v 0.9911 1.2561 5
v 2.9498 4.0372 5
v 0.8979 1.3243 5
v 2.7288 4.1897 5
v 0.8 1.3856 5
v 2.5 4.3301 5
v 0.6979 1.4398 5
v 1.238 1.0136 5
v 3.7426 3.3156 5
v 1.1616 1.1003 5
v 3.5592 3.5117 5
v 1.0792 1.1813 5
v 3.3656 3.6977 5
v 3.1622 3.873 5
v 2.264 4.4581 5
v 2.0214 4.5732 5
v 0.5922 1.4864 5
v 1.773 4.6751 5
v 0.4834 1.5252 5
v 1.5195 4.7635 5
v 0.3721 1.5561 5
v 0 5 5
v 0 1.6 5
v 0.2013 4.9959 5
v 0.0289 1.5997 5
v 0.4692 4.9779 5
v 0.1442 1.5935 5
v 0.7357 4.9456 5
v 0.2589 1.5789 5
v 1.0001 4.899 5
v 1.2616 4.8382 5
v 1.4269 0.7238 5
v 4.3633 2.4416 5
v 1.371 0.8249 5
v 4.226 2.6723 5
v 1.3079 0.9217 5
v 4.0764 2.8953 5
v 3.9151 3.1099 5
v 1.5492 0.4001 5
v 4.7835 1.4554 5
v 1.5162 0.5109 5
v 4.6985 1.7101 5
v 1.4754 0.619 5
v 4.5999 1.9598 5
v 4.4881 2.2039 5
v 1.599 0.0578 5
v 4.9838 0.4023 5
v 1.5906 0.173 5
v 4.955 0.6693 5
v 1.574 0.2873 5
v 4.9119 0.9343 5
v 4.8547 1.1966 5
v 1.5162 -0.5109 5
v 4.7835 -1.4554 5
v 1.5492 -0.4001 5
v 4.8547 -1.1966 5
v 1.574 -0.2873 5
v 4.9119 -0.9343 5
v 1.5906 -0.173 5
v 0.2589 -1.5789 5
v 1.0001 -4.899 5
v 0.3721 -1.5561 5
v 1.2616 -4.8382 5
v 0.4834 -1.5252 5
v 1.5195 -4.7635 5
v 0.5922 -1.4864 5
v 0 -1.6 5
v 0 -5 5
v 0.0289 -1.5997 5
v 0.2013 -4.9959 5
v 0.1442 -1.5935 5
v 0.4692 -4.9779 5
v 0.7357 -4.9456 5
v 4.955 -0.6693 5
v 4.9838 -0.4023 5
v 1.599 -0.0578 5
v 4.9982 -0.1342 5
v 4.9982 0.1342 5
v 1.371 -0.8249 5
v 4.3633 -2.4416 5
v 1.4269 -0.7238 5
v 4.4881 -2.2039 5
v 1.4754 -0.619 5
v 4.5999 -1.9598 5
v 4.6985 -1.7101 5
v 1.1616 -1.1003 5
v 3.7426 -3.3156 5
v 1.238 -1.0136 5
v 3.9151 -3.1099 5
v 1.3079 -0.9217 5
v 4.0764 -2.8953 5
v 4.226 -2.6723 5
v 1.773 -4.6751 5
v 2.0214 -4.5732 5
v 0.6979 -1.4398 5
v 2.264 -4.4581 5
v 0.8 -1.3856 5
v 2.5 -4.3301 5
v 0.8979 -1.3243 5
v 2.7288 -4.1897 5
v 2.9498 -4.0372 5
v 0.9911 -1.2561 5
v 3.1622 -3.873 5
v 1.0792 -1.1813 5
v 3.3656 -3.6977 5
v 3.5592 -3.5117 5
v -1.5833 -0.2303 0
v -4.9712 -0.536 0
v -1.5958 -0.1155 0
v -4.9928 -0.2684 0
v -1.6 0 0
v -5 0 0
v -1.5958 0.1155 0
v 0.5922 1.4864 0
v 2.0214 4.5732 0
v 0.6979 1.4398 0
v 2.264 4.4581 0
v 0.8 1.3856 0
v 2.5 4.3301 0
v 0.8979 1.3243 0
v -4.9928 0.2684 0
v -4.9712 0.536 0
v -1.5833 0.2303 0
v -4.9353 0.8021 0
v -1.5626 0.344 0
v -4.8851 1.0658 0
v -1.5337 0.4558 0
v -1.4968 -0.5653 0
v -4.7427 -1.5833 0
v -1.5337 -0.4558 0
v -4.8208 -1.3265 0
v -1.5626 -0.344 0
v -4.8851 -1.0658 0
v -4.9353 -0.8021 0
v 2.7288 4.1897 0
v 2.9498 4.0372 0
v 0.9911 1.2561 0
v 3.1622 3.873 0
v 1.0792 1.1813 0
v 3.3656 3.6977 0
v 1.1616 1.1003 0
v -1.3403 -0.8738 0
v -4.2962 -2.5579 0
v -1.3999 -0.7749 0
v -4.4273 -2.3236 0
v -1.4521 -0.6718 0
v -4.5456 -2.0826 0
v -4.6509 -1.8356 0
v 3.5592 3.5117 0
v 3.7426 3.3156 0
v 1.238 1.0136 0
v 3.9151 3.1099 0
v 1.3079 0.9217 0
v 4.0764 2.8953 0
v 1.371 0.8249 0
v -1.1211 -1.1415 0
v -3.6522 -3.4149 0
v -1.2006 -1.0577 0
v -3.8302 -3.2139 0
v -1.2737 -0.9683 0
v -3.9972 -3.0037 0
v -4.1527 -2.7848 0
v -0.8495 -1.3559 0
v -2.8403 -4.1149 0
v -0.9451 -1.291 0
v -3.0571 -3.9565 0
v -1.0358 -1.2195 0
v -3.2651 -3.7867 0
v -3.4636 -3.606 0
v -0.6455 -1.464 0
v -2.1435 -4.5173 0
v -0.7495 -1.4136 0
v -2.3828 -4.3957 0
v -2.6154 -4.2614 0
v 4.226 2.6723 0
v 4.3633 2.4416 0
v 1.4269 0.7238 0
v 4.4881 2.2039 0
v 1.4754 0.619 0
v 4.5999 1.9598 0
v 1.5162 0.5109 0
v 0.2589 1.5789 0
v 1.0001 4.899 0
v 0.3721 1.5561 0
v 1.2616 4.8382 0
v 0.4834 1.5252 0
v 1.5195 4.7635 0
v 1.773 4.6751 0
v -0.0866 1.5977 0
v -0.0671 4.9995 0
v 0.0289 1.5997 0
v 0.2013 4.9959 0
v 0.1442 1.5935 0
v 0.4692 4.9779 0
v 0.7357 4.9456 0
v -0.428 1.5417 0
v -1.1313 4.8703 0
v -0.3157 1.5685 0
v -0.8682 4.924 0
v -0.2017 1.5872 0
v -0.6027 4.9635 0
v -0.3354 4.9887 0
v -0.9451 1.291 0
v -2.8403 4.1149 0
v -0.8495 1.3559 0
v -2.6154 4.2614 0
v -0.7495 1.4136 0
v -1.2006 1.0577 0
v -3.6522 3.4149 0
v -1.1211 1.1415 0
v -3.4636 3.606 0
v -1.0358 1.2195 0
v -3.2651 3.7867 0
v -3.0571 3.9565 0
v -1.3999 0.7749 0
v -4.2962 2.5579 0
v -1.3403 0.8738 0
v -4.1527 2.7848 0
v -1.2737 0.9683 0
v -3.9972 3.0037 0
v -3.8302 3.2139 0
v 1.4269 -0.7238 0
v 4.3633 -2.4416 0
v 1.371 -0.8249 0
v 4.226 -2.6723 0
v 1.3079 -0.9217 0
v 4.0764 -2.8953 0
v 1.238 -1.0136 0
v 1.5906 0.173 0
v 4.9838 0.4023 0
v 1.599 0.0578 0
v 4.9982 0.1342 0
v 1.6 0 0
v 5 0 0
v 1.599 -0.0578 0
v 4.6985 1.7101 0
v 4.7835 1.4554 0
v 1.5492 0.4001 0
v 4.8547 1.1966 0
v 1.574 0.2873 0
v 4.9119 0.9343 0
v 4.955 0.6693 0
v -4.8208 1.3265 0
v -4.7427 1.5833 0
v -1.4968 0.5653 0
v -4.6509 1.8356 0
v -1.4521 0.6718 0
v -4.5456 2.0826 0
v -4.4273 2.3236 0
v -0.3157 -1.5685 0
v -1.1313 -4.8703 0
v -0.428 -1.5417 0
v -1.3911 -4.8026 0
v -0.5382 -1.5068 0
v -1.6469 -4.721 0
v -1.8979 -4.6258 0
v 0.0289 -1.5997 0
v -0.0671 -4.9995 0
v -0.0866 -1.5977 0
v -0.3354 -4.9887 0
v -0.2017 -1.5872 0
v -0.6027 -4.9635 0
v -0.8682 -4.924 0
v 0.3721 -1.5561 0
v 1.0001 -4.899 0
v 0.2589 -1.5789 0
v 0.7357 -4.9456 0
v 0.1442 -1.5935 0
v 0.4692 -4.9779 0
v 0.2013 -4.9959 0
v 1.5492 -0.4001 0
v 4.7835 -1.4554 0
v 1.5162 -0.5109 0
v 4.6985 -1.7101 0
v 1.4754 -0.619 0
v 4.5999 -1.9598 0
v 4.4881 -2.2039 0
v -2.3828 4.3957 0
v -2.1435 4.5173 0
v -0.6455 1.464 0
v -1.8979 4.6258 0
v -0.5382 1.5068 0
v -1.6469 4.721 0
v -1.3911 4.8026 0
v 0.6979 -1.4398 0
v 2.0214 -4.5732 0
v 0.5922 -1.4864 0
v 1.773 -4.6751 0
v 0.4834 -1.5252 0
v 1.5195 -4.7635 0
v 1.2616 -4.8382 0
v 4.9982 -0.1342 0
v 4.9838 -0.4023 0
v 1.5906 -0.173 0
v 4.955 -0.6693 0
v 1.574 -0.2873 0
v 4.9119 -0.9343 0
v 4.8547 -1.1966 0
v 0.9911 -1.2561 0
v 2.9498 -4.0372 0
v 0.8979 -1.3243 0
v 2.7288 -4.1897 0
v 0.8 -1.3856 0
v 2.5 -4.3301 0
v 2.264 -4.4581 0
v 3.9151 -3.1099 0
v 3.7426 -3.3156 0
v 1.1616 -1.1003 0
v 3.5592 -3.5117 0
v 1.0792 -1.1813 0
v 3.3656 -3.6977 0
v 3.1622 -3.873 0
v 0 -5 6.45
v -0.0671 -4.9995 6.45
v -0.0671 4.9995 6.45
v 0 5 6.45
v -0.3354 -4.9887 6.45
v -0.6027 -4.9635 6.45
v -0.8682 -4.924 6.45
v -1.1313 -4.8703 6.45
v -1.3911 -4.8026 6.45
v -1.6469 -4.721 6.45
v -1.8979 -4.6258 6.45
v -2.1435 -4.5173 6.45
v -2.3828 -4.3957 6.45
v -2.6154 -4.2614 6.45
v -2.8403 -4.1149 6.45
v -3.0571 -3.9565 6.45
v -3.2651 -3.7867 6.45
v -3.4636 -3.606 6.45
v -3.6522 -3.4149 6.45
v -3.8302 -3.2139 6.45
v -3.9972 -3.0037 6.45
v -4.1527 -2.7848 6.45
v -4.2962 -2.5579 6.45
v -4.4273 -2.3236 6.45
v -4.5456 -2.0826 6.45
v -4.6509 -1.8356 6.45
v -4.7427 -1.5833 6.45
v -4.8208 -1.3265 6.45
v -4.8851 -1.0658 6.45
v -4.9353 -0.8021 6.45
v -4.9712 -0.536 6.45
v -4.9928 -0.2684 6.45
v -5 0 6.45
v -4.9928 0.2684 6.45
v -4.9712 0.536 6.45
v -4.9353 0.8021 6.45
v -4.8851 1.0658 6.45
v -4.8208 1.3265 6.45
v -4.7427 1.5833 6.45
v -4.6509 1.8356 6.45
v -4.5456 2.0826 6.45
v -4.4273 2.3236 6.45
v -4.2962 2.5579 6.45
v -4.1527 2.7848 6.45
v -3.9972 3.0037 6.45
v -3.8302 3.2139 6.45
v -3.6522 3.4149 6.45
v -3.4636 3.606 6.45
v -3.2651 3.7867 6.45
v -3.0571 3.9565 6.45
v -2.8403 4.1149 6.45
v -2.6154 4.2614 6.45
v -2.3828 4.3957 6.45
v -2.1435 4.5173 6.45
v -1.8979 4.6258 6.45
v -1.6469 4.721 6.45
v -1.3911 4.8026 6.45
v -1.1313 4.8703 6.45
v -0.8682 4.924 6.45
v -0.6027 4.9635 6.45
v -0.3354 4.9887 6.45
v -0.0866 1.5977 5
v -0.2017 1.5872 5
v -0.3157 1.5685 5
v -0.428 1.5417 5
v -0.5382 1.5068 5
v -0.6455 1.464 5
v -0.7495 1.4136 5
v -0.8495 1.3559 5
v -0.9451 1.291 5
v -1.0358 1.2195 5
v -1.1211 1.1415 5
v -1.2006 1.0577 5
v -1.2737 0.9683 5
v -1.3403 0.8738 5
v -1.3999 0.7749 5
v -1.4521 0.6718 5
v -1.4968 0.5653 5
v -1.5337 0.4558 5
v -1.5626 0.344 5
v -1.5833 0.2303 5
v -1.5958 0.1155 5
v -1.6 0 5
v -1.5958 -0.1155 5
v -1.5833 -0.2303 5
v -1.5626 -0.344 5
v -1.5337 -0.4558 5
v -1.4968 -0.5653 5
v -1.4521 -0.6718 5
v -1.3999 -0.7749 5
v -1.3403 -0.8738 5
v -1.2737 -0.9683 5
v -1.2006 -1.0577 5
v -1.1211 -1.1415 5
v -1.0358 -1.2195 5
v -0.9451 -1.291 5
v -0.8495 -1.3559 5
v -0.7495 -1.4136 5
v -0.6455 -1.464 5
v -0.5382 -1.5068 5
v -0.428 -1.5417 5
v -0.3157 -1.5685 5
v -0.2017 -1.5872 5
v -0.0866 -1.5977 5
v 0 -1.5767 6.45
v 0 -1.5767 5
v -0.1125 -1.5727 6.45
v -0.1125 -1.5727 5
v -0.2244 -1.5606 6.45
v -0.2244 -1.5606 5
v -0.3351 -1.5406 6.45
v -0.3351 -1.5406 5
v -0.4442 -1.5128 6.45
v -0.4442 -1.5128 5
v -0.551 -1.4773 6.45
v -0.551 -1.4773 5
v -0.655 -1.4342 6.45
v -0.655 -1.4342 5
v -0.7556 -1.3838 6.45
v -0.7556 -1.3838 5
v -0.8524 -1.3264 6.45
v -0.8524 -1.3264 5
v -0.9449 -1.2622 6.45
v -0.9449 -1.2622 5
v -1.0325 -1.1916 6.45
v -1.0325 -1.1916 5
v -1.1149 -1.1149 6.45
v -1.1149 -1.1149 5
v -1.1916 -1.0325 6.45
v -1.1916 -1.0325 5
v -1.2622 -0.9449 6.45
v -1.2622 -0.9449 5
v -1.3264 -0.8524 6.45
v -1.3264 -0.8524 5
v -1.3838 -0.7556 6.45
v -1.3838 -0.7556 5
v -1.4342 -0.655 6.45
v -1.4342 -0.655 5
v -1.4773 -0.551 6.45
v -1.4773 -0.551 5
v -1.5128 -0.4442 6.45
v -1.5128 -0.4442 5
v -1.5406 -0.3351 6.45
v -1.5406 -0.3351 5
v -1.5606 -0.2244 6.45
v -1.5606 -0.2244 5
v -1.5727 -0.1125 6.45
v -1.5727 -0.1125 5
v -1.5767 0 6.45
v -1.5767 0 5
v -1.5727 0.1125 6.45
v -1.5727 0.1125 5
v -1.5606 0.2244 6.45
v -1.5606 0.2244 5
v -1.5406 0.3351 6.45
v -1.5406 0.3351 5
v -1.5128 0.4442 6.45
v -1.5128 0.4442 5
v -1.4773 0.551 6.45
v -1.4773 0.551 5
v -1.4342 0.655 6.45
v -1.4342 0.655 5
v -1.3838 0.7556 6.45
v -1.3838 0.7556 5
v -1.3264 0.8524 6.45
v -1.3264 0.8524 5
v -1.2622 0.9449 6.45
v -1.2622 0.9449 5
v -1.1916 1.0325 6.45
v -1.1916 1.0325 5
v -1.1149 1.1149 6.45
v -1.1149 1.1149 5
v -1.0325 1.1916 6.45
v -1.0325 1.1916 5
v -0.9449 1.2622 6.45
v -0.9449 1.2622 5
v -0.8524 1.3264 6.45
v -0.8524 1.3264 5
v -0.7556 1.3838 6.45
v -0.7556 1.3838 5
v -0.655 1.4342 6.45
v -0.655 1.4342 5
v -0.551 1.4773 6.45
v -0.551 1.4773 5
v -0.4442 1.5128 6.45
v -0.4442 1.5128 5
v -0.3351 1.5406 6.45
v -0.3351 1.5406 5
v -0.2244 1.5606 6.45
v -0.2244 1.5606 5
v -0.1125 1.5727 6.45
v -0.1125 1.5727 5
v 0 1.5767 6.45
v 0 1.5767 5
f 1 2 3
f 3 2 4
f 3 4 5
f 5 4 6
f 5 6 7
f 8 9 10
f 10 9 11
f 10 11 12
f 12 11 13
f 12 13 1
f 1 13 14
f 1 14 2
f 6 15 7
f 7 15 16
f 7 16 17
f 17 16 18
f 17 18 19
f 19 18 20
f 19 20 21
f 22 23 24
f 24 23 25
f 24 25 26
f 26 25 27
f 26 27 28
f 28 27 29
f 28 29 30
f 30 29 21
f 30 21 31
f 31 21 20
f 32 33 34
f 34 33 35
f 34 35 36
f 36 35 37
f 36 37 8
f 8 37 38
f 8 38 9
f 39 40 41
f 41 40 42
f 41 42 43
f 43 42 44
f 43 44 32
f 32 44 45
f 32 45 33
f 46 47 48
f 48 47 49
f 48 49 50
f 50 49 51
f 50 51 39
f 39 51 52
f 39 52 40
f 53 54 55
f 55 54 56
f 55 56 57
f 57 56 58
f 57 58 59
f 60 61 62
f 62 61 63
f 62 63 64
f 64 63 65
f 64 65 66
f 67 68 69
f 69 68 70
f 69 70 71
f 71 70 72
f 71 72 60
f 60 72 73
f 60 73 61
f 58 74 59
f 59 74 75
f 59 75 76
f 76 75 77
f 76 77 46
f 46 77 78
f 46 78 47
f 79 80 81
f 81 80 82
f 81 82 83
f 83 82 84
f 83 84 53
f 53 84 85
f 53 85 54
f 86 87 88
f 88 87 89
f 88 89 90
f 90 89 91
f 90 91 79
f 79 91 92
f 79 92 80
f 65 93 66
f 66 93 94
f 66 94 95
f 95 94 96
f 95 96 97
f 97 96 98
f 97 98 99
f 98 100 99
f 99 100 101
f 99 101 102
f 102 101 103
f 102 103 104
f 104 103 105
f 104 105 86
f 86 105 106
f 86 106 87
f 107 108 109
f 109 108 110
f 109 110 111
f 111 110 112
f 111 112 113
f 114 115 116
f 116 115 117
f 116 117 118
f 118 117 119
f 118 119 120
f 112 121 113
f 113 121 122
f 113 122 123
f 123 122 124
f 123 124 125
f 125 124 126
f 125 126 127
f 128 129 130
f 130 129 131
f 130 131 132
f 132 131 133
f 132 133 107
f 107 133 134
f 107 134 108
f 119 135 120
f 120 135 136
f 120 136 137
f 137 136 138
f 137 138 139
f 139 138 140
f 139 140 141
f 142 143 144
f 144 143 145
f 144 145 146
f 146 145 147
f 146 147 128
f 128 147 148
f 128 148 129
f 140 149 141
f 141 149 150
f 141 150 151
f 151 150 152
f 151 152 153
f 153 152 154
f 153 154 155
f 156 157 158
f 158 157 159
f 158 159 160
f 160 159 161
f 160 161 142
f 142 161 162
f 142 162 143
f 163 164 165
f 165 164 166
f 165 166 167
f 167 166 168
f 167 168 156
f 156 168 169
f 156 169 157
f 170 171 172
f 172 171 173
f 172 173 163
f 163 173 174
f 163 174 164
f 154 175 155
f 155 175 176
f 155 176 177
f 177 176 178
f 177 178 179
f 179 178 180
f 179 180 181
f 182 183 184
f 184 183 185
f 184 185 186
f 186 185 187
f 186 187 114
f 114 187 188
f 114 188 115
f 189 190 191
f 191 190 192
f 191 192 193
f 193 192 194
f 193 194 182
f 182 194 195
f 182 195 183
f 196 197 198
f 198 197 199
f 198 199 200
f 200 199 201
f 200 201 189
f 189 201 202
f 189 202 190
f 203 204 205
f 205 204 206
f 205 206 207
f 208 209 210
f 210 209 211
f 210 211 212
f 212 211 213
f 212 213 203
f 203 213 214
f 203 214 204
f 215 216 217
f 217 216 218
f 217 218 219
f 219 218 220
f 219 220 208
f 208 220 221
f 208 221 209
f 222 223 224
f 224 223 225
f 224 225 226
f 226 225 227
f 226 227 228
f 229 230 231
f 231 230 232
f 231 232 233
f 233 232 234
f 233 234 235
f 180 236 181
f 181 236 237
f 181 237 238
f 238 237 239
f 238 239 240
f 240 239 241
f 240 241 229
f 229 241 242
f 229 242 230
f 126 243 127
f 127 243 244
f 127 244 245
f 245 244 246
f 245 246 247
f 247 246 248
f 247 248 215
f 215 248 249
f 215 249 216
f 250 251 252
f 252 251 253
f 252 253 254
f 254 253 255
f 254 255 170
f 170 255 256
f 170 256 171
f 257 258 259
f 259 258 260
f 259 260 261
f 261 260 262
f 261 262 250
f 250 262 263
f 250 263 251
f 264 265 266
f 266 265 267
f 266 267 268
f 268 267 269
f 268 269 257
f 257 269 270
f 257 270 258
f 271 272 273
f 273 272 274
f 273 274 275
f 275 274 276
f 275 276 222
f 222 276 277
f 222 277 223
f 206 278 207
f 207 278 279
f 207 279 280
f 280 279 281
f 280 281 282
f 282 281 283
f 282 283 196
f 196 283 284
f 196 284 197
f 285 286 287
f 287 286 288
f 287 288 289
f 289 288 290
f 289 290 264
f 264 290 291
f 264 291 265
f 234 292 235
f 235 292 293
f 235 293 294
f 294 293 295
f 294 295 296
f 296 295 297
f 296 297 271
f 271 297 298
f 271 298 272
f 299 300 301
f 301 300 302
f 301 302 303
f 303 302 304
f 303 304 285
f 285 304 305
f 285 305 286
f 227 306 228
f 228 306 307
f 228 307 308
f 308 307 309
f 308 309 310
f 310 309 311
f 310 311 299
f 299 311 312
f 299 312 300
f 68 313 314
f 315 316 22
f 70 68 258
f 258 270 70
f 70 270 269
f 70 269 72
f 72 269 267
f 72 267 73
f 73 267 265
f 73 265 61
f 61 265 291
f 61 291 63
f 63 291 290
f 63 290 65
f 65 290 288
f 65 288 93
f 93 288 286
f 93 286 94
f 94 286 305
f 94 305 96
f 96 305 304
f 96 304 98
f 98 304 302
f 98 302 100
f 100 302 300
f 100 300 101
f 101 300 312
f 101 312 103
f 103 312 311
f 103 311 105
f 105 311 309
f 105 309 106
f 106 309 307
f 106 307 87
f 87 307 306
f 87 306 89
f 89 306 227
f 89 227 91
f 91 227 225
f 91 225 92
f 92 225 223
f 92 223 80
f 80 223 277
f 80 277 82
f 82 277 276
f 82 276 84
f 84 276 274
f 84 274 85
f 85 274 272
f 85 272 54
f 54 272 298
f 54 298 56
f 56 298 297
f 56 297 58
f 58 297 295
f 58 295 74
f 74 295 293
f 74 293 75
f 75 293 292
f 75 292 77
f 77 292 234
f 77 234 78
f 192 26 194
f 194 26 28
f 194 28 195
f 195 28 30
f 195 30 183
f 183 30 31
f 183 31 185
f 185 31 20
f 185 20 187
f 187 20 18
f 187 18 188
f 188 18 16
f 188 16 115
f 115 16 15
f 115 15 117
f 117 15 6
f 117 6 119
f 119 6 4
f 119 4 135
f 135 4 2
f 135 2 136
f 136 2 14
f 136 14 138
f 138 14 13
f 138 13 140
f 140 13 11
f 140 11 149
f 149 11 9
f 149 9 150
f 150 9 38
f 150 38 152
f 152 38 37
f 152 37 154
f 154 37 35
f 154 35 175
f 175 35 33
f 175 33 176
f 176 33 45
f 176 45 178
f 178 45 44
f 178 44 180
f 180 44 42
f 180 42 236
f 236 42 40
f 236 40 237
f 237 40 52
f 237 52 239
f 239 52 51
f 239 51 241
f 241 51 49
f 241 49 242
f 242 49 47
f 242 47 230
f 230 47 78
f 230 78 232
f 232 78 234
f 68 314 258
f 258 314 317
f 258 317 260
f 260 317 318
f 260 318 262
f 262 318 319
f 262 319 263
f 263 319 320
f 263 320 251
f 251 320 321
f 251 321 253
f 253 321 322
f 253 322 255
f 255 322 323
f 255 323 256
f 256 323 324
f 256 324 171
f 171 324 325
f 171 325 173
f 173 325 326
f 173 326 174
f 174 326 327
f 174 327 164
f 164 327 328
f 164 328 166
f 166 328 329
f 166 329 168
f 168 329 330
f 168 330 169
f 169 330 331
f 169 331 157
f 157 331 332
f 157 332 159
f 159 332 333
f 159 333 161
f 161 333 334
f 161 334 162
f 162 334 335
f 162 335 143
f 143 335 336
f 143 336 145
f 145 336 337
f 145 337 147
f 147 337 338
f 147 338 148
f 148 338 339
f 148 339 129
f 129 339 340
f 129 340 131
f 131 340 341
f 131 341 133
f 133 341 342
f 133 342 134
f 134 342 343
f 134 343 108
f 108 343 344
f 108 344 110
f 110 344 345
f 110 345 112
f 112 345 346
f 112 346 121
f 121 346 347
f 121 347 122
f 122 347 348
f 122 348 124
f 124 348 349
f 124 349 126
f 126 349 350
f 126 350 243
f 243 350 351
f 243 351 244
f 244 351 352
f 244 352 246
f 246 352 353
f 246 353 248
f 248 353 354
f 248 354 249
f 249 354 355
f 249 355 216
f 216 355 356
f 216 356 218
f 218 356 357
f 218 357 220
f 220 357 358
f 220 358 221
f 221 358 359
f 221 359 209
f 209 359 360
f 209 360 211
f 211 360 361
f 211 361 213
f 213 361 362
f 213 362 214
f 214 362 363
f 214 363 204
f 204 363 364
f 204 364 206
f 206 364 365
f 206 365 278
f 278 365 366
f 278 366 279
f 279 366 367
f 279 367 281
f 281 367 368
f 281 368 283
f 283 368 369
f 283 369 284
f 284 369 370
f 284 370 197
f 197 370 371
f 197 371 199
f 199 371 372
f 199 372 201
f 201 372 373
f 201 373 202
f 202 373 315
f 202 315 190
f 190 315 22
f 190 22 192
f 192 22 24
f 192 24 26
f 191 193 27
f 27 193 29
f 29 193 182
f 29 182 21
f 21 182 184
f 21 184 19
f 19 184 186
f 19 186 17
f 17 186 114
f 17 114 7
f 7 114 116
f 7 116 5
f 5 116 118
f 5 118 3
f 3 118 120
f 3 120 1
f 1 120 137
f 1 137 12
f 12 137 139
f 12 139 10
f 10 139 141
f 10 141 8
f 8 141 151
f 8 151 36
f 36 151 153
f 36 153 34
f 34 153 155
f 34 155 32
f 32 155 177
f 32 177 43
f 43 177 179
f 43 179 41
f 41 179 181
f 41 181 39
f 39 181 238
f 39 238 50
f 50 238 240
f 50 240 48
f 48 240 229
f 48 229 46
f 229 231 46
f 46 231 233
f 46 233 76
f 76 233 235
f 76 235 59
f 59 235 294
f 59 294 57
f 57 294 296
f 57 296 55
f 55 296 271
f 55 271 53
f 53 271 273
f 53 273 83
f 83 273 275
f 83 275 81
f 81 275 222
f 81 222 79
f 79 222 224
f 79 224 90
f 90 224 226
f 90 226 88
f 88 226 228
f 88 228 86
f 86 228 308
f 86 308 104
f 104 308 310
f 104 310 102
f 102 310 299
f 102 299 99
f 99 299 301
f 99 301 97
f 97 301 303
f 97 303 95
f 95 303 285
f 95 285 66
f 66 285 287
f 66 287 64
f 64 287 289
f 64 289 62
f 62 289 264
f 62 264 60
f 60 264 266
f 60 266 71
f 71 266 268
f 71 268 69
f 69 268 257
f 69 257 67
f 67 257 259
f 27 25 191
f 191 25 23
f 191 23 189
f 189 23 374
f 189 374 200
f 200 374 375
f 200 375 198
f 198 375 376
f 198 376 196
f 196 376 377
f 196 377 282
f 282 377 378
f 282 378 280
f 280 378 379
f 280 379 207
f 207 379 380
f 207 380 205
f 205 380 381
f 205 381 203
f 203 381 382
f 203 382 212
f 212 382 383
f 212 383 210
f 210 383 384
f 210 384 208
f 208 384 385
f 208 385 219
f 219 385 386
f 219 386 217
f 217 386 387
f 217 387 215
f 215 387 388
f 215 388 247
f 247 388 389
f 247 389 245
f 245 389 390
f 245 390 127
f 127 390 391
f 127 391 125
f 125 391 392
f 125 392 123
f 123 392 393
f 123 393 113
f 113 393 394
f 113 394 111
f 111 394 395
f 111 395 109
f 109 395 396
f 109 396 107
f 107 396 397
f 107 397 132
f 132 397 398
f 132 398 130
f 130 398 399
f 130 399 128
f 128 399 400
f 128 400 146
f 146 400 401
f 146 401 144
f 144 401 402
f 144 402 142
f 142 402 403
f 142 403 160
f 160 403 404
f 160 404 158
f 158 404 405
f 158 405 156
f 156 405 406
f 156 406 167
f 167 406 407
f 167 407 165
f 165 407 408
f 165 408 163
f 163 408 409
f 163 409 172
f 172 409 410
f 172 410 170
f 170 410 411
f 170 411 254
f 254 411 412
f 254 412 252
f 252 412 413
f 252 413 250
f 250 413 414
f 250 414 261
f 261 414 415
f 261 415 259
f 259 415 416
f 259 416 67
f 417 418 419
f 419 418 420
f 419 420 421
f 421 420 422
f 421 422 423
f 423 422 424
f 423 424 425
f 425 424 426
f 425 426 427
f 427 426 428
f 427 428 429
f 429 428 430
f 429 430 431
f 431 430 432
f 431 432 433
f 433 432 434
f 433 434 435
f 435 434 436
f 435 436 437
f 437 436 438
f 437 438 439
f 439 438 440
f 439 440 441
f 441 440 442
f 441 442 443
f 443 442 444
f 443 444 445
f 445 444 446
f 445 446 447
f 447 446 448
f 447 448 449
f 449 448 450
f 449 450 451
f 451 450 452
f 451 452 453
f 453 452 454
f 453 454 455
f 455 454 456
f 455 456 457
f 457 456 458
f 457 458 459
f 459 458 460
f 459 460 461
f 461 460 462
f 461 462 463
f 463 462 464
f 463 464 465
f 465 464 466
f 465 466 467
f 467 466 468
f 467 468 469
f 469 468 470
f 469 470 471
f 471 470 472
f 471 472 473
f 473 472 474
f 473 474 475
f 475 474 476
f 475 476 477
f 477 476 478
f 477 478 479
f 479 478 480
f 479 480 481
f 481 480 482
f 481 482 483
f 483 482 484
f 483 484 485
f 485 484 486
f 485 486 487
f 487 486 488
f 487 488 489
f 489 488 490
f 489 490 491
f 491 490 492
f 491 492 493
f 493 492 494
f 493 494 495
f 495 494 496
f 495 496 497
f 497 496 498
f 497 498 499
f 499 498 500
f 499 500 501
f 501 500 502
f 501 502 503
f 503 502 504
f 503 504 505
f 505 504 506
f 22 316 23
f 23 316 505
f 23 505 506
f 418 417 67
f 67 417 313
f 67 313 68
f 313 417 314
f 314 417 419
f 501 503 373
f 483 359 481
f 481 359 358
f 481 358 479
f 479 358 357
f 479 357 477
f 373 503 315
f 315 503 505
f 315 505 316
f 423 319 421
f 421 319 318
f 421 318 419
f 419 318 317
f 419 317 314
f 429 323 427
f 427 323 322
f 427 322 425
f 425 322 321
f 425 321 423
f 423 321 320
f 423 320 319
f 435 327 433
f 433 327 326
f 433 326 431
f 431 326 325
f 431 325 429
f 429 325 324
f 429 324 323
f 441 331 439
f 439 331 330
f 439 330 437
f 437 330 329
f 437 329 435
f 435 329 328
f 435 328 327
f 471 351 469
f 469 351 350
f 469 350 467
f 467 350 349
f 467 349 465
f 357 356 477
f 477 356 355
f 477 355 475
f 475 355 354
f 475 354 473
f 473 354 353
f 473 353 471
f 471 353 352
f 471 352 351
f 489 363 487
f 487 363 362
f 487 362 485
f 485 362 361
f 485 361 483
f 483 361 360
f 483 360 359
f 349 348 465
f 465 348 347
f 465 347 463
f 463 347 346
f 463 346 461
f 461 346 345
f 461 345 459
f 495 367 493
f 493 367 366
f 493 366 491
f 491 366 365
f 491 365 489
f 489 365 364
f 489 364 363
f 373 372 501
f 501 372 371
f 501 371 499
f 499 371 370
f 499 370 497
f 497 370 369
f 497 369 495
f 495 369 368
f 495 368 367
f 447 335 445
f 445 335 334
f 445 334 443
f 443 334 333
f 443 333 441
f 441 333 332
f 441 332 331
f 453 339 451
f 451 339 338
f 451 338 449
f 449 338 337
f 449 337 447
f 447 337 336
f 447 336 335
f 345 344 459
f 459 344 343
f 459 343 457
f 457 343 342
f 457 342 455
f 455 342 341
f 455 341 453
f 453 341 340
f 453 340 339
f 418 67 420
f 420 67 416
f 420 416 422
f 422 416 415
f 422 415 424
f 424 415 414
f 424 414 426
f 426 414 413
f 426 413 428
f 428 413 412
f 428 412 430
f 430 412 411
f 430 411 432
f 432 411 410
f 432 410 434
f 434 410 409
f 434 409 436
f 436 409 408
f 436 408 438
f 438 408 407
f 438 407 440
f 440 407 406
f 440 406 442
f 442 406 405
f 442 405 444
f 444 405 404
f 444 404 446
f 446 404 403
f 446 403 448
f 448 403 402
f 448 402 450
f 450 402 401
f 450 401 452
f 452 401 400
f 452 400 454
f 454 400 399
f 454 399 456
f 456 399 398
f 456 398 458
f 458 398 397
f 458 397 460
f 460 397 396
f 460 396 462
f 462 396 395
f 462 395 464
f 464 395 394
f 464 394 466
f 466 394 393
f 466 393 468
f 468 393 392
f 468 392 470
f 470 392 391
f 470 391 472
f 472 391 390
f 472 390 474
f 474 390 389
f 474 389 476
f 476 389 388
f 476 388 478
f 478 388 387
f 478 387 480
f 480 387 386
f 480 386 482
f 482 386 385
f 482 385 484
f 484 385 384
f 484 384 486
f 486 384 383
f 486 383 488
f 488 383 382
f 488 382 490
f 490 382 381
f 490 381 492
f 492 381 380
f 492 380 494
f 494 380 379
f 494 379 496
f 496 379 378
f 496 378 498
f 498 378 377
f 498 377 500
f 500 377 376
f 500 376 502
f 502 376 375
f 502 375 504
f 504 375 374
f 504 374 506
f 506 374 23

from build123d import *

# Parameters (mm, degrees)
SKETCH2_R           = 5
SKETCH2_R_2         = 1.6
BOSS_EXTRUDE1_DEPTH = 5
BOSS_EXTRUDE2_DEPTH = 1.45


with BuildPart() as part:
    # Sketch2 → Boss-Extrude1 (new body)
    with BuildSketch(Plane.XY):
        Circle(SKETCH2_R)
        Circle(SKETCH2_R_2, mode=Mode.SUBTRACT)
    extrude(amount=BOSS_EXTRUDE1_DEPTH)

    # Sketch3 → Boss-Extrude2 (add)
    with BuildSketch(Plane.XY.offset(5)):
        with BuildLine():
            Line((0, 1.576678565), (0, 5))
            ThreePointArc((0, 5), (-5, 0), (0, -5))
            Line((0, -5), (0, -1.576678565))
            ThreePointArc((0, -1.576678565), (-1.576678565, 0), (0, 1.576678565))
        make_face()
    extrude(amount=BOSS_EXTRUDE2_DEPTH)


solid = part.part
